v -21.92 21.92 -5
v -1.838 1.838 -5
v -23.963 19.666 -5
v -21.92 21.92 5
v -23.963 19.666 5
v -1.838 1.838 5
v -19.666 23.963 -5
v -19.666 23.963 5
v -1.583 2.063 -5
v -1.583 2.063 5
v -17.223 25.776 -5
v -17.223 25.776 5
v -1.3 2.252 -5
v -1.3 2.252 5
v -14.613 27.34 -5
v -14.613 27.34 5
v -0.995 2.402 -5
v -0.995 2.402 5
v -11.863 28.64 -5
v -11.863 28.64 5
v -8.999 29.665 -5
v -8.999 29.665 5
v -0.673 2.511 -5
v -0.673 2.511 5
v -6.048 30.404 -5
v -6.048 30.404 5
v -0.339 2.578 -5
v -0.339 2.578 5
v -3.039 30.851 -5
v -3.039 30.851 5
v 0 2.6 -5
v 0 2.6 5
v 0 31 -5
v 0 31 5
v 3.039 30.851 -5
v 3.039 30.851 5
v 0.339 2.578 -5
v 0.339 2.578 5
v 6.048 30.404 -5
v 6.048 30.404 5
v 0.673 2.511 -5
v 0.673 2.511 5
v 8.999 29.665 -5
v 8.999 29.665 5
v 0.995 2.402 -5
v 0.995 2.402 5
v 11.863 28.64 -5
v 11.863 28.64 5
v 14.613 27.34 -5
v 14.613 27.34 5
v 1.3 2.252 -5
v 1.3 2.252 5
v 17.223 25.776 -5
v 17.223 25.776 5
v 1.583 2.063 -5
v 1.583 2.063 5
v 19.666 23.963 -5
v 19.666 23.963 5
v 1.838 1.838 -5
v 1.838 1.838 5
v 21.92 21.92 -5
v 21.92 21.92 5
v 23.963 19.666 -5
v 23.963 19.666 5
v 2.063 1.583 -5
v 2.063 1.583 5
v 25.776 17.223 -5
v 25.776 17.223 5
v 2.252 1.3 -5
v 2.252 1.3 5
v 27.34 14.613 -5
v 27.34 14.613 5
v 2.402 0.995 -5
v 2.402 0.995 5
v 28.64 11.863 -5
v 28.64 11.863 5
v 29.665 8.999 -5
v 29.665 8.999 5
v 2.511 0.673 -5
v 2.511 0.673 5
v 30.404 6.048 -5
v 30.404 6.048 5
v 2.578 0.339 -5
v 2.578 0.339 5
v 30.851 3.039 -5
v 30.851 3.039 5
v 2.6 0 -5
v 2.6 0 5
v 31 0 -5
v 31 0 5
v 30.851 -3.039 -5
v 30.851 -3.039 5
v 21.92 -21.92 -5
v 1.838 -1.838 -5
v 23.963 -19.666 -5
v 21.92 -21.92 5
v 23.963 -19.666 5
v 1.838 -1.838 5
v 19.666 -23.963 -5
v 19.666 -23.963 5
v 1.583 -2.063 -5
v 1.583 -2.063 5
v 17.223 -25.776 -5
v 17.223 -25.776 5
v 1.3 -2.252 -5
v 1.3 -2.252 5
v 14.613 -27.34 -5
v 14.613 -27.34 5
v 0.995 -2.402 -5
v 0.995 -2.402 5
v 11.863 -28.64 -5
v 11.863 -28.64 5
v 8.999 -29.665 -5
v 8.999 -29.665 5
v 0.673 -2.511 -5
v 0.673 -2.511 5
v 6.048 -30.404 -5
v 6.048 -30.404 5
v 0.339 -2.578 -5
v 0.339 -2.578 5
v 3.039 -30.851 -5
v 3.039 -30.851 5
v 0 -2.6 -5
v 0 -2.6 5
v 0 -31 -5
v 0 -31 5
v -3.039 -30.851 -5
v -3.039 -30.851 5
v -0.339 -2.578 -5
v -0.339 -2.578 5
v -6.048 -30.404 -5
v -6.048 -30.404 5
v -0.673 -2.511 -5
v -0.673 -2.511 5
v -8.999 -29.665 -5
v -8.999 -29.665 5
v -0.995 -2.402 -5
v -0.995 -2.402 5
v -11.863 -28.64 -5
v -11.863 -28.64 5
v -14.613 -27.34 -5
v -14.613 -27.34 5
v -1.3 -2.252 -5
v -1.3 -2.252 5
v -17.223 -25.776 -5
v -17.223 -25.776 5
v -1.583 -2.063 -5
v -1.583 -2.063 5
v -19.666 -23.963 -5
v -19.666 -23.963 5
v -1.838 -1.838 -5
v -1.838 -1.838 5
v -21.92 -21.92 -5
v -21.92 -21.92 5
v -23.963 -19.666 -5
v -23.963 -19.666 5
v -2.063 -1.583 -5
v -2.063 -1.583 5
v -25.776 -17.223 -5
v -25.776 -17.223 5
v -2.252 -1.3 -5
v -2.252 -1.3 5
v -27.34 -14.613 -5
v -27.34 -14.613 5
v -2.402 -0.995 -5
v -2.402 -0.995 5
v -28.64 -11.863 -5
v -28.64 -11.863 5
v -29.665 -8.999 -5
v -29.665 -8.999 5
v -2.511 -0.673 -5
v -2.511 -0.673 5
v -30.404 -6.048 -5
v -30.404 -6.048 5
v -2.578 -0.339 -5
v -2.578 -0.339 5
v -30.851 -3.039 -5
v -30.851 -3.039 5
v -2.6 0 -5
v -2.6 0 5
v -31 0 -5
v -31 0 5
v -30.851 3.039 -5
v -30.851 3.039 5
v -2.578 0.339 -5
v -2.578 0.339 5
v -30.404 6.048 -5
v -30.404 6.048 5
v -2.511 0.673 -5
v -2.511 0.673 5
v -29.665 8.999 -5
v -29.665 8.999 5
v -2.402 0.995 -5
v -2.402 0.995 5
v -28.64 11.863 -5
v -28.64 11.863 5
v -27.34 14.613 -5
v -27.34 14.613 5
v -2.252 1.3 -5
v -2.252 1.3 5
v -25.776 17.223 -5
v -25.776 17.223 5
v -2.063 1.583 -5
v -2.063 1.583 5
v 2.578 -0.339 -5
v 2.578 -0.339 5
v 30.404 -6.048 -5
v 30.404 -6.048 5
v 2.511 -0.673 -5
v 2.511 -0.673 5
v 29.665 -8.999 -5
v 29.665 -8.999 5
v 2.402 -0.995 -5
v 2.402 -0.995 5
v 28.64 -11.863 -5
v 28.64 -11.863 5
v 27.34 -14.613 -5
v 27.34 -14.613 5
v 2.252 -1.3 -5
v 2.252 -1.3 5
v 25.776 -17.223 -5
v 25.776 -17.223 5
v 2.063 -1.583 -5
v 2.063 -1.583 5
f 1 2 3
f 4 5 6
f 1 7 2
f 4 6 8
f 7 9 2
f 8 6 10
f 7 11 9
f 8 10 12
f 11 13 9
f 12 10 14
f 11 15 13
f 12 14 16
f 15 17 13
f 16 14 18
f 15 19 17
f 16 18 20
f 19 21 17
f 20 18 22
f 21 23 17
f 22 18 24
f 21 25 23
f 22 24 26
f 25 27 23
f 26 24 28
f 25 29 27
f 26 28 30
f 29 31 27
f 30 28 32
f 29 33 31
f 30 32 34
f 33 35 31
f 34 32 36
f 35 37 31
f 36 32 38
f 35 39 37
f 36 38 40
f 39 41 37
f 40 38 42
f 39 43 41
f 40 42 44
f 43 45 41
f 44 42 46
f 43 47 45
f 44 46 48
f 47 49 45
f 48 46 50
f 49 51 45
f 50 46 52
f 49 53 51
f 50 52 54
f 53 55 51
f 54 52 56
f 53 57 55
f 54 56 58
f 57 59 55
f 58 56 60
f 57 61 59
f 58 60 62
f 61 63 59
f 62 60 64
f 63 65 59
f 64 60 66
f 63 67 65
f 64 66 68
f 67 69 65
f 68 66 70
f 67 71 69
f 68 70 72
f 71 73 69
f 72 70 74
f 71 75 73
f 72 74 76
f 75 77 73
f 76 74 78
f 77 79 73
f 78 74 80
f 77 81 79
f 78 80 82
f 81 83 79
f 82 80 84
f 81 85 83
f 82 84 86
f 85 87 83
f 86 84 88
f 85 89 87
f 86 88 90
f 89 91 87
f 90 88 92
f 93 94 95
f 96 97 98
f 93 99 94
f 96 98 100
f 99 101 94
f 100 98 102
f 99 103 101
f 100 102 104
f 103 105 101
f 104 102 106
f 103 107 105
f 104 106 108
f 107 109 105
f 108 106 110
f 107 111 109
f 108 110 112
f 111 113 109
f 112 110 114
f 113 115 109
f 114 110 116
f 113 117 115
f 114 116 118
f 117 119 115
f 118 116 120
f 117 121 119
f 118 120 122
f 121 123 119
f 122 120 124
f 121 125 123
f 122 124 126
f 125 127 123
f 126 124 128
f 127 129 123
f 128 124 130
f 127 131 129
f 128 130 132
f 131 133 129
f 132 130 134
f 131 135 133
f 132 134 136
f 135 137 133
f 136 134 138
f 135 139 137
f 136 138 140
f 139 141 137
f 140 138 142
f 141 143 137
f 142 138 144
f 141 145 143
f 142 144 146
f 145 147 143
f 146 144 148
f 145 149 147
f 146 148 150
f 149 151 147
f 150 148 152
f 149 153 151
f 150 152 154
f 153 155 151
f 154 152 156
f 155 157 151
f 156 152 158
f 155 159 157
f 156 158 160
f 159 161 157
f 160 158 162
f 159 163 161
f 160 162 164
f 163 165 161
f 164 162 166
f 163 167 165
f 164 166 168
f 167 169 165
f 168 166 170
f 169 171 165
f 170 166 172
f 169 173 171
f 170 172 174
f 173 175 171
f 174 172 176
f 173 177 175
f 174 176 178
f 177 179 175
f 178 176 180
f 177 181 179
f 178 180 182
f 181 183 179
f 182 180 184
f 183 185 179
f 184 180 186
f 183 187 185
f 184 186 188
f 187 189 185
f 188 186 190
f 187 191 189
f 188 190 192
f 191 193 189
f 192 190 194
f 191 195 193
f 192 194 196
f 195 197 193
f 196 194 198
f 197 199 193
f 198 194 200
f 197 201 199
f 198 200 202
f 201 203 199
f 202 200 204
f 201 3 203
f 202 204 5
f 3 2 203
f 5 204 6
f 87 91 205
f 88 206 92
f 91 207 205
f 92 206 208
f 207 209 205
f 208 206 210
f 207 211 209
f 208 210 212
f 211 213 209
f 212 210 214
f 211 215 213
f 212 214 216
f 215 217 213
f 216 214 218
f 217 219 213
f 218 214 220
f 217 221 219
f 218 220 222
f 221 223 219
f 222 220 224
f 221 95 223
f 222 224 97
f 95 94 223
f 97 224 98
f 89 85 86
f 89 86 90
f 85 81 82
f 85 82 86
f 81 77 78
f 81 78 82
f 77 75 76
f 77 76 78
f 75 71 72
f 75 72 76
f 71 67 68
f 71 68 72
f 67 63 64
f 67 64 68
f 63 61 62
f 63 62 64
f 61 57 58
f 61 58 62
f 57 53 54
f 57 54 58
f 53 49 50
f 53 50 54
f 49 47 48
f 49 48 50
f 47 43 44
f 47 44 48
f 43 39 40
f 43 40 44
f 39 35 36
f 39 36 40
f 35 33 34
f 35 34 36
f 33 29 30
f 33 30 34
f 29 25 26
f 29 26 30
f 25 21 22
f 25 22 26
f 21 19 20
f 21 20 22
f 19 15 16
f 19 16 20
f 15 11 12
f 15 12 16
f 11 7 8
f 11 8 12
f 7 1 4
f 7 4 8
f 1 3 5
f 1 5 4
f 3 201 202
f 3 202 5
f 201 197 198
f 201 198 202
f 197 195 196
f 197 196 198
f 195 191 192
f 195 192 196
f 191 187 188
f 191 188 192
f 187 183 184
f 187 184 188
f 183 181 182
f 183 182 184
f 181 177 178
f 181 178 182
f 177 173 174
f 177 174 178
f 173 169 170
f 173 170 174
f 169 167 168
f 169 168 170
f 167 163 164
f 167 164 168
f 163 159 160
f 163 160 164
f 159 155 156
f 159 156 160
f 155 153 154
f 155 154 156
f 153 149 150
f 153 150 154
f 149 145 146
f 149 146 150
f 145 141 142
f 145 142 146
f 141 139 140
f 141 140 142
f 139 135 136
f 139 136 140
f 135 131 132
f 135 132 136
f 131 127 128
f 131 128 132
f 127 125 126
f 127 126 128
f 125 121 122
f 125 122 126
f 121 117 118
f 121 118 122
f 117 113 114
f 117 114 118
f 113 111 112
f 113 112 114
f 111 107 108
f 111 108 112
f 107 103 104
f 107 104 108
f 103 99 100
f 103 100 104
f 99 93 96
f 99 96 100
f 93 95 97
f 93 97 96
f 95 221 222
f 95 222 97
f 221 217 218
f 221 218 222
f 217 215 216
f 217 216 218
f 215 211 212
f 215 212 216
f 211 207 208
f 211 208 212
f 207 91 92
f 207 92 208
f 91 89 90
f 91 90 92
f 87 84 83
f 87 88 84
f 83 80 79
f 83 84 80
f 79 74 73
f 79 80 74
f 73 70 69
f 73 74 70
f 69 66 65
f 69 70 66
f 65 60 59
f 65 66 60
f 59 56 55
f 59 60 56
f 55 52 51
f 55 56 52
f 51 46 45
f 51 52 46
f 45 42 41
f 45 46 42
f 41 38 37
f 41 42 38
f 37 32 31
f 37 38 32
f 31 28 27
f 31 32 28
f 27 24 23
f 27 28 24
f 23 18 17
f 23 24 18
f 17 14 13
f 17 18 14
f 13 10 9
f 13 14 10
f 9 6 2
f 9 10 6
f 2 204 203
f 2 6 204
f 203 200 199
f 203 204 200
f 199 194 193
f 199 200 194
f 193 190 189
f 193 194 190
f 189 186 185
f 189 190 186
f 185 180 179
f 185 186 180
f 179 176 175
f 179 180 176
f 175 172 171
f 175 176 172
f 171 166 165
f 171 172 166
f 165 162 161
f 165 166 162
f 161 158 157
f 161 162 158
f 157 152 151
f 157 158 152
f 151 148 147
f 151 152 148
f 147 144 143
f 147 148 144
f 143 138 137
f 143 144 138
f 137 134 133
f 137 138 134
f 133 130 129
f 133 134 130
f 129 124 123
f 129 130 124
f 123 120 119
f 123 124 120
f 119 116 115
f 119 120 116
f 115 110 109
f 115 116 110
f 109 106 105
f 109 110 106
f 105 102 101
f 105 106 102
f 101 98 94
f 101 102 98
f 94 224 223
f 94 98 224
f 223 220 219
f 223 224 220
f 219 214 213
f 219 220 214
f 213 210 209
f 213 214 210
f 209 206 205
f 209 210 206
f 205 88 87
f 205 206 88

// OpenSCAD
polyhedron(points=[[-21.92031, 21.92031, -5.0], [-23.963324, 19.666192, -5.0], [-1.838478, 1.838478, -5.0], [-21.92031, 21.92031, 5.0], [-23.963324, 19.666192, 5.0], [-1.838478, 1.838478, 5.0], [-19.666192, 23.963324, -5.0], [-19.666192, 23.963324, 5.0], [-1.58278, 2.062719, -5.0], [-1.58278, 2.062719, 5.0], [-17.222677, 25.775558, -5.0], [-17.222677, 25.775558, 5.0], [-1.3, 2.251666, -5.0], [-1.3, 2.251666, 5.0], [-14.613299, 27.339559, -5.0], [-14.613299, 27.339559, 5.0], [-0.994977, 2.402087, -5.0], [-0.994977, 2.402087, 5.0], [-11.863186, 28.640266, -5.0], [-11.863186, 28.640266, 5.0], [-8.998825, 29.66515, -5.0], [-8.998825, 29.66515, 5.0], [-0.67293, 2.511407, -5.0], [-0.67293, 2.511407, 5.0], [-6.0478, 30.404344, -5.0], [-6.0478, 30.404344, 5.0], [-0.339368, 2.577757, -5.0], [-0.339368, 2.577757, 5.0], [-3.038531, 30.850727, -5.0], [-3.038531, 30.850727, 5.0], [0.0, 2.6, -5.0], [0.0, 2.6, 5.0], [0.0, 31.0, -5.0], [0.0, 31.0, 5.0], [3.038531, 30.850727, -5.0], [3.038531, 30.850727, 5.0], [0.339368, 2.577757, -5.0], [0.339368, 2.577757, 5.0], [6.0478, 30.404344, -5.0], [6.0478, 30.404344, 5.0], [0.67293, 2.511407, -5.0], [0.67293, 2.511407, 5.0], [8.998825, 29.66515, -5.0], [8.998825, 29.66515, 5.0], [0.994977, 2.402087, -5.0], [0.994977, 2.402087, 5.0], [11.863186, 28.640266, -5.0], [11.863186, 28.640266, 5.0], [14.613299, 27.339559, -5.0], [14.613299, 27.339559, 5.0], [1.3, 2.251666, -5.0], [1.3, 2.251666, 5.0], [17.222677, 25.775558, -5.0], [17.222677, 25.775558, 5.0], [1.58278, 2.062719, -5.0], [1.58278, 2.062719, 5.0], [19.666192, 23.963324, -5.0], [19.666192, 23.963324, 5.0], [1.838478, 1.838478, -5.0], [1.838478, 1.838478, 5.0], [21.92031, 21.92031, -5.0], [21.92031, 21.92031, 5.0], [23.963324, 19.666192, -5.0], [23.963324, 19.666192, 5.0], [2.062719, 1.58278, -5.0], [2.062719, 1.58278, 5.0], [25.775558, 17.222677, -5.0], [25.775558, 17.222677, 5.0], [2.251666, 1.3, -5.0], [2.251666, 1.3, 5.0], [27.339559, 14.613299, -5.0], [27.339559, 14.613299, 5.0], [2.402087, 0.994977, -5.0], [2.402087, 0.994977, 5.0], [28.640266, 11.863186, -5.0], [28.640266, 11.863186, 5.0], [29.66515, 8.998825, -5.0], [29.66515, 8.998825, 5.0], [2.511407, 0.67293, -5.0], [2.511407, 0.67293, 5.0], [30.404344, 6.0478, -5.0], [30.404344, 6.0478, 5.0], [2.577757, 0.339368, -5.0], [2.577757, 0.339368, 5.0], [30.850727, 3.038531, -5.0], [30.850727, 3.038531, 5.0], [2.6, 0.0, -5.0], [2.6, 0.0, 5.0], [31.0, 0.0, -5.0], [31.0, 0.0, 5.0], [30.850727, -3.038531, -5.0], [30.850727, -3.038531, 5.0], [21.92031, -21.92031, -5.0], [23.963324, -19.666192, -5.0], [1.838478, -1.838478, -5.0], [21.92031, -21.92031, 5.0], [23.963324, -19.666192, 5.0], [1.838478, -1.838478, 5.0], [19.666192, -23.963324, -5.0], [19.666192, -23.963324, 5.0], [1.58278, -2.062719, -5.0], [1.58278, -2.062719, 5.0], [17.222677, -25.775558, -5.0], [17.222677, -25.775558, 5.0], [1.3, -2.251666, -5.0], [1.3, -2.251666, 5.0], [14.613299, -27.339559, -5.0], [14.613299, -27.339559, 5.0], [0.994977, -2.402087, -5.0], [0.994977, -2.402087, 5.0], [11.863186, -28.640266, -5.0], [11.863186, -28.640266, 5.0], [8.998825, -29.66515, -5.0], [8.998825, -29.66515, 5.0], [0.67293, -2.511407, -5.0], [0.67293, -2.511407, 5.0], [6.0478, -30.404344, -5.0], [6.0478, -30.404344, 5.0], [0.339368, -2.577757, -5.0], [0.339368, -2.577757, 5.0], [3.038531, -30.850727, -5.0], [3.038531, -30.850727, 5.0], [-0.0, -2.6, -5.0], [-0.0, -2.6, 5.0], [-0.0, -31.0, -5.0], [-0.0, -31.0, 5.0], [-3.038531, -30.850727, -5.0], [-3.038531, -30.850727, 5.0], [-0.339368, -2.577757, -5.0], [-0.339368, -2.577757, 5.0], [-6.0478, -30.404344, -5.0], [-6.0478, -30.404344, 5.0], [-0.67293, -2.511407, -5.0], [-0.67293, -2.511407, 5.0], [-8.998825, -29.66515, -5.0], [-8.998825, -29.66515, 5.0], [-0.994977, -2.402087, -5.0], [-0.994977, -2.402087, 5.0], [-11.863186, -28.640266, -5.0], [-11.863186, -28.640266, 5.0], [-14.613299, -27.339559, -5.0], [-14.613299, -27.339559, 5.0], [-1.3, -2.251666, -5.0], [-1.3, -2.251666, 5.0], [-17.222677, -25.775558, -5.0], [-17.222677, -25.775558, 5.0], [-1.58278, -2.062719, -5.0], [-1.58278, -2.062719, 5.0], [-19.666192, -23.963324, -5.0], [-19.666192, -23.963324, 5.0], [-1.838478, -1.838478, -5.0], [-1.838478, -1.838478, 5.0], [-21.92031, -21.92031, -5.0], [-21.92031, -21.92031, 5.0], [-23.963324, -19.666192, -5.0], [-23.963324, -19.666192, 5.0], [-2.062719, -1.58278, -5.0], [-2.062719, -1.58278, 5.0], [-25.775558, -17.222677, -5.0], [-25.775558, -17.222677, 5.0], [-2.251666, -1.3, -5.0], [-2.251666, -1.3, 5.0], [-27.339559, -14.613299, -5.0], [-27.339559, -14.613299, 5.0], [-2.402087, -0.994977, -5.0], [-2.402087, -0.994977, 5.0], [-28.640266, -11.863186, -5.0], [-28.640266, -11.863186, 5.0], [-29.66515, -8.998825, -5.0], [-29.66515, -8.998825, 5.0], [-2.511407, -0.67293, -5.0], [-2.511407, -0.67293, 5.0], [-30.404344, -6.0478, -5.0], [-30.404344, -6.0478, 5.0], [-2.577757, -0.339368, -5.0], [-2.577757, -0.339368, 5.0], [-30.850727, -3.038531, -5.0], [-30.850727, -3.038531, 5.0], [-2.6, 0.0, -5.0], [-2.6, 0.0, 5.0], [-31.0, 0.0, -5.0], [-31.0, 0.0, 5.0], [-30.850727, 3.038531, -5.0], [-30.850727, 3.038531, 5.0], [-2.577757, 0.339368, -5.0], [-2.577757, 0.339368, 5.0], [-30.404344, 6.0478, -5.0], [-30.404344, 6.0478, 5.0], [-2.511407, 0.67293, -5.0], [-2.511407, 0.67293, 5.0], [-29.66515, 8.998825, -5.0], [-29.66515, 8.998825, 5.0], [-2.402087, 0.994977, -5.0], [-2.402087, 0.994977, 5.0], [-28.640266, 11.863186, -5.0], [-28.640266, 11.863186, 5.0], [-27.339559, 14.613299, -5.0], [-27.339559, 14.613299, 5.0], [-2.251666, 1.3, -5.0], [-2.251666, 1.3, 5.0], [-25.775558, 17.222677, -5.0], [-25.775558, 17.222677, 5.0], [-2.062719, 1.58278, -5.0], [-2.062719, 1.58278, 5.0], [2.577757, -0.339368, -5.0], [2.577757, -0.339368, 5.0], [30.404344, -6.0478, -5.0], [30.404344, -6.0478, 5.0], [2.511407, -0.67293, -5.0], [2.511407, -0.67293, 5.0], [29.66515, -8.998825, -5.0], [29.66515, -8.998825, 5.0], [2.402087, -0.994977, -5.0], [2.402087, -0.994977, 5.0], [28.640266, -11.863186, -5.0], [28.640266, -11.863186, 5.0], [27.339559, -14.613299, -5.0], [27.339559, -14.613299, 5.0], [2.251666, -1.3, -5.0], [2.251666, -1.3, 5.0], [25.775558, -17.222677, -5.0], [25.775558, -17.222677, 5.0], [2.062719, -1.58278, -5.0], [2.062719, -1.58278, 5.0]], faces=[[0, 2, 1], [3, 4, 5], [0, 6, 2], [3, 5, 7], [6, 8, 2], [7, 5, 9], [6, 10, 8], [7, 9, 11], [10, 12, 8], [11, 9, 13], [10, 14, 12], [11, 13, 15], [14, 16, 12], [15, 13, 17], [14, 18, 16], [15, 17, 19], [18, 20, 16], [19, 17, 21], [20, 22, 16], [21, 17, 23], [20, 24, 22], [21, 23, 25], [24, 26, 22], [25, 23, 27], [24, 28, 26], [25, 27, 29], [28, 30, 26], [29, 27, 31], [28, 32, 30], [29, 31, 33], [32, 34, 30], [33, 31, 35], [34, 36, 30], [35, 31, 37], [34, 38, 36], [35, 37, 39], [38, 40, 36], [39, 37, 41], [38, 42, 40], [39, 41, 43], [42, 44, 40], [43, 41, 45], [42, 46, 44], [43, 45, 47], [46, 48, 44], [47, 45, 49], [48, 50, 44], [49, 45, 51], [48, 52, 50], [49, 51, 53], [52, 54, 50], [53, 51, 55], [52, 56, 54], [53, 55, 57], [56, 58, 54], [57, 55, 59], [56, 60, 58], [57, 59, 61], [60, 62, 58], [61, 59, 63], [62, 64, 58], [63, 59, 65], [62, 66, 64], [63, 65, 67], [66, 68, 64], [67, 65, 69], [66, 70, 68], [67, 69, 71], [70, 72, 68], [71, 69, 73], [70, 74, 72], [71, 73, 75], [74, 76, 72], [75, 73, 77], [76, 78, 72], [77, 73, 79], [76, 80, 78], [77, 79, 81], [80, 82, 78], [81, 79, 83], [80, 84, 82], [81, 83, 85], [84, 86, 82], [85, 83, 87], [84, 88, 86], [85, 87, 89], [88, 90, 86], [89, 87, 91], [92, 94, 93], [95, 96, 97], [92, 98, 94], [95, 97, 99], [98, 100, 94], [99, 97, 101], [98, 102, 100], [99, 101, 103], [102, 104, 100], [103, 101, 105], [102, 106, 104], [103, 105, 107], [106, 108, 104], [107, 105, 109], [106, 110, 108], [107, 109, 111], [110, 112, 108], [111, 109, 113], [112, 114, 108], [113, 109, 115], [112, 116, 114], [113, 115, 117], [116, 118, 114], [117, 115, 119], [116, 120, 118], [117, 119, 121], [120, 122, 118], [121, 119, 123], [120, 124, 122], [121, 123, 125], [124, 126, 122], [125, 123, 127], [126, 128, 122], [127, 123, 129], [126, 130, 128], [127, 129, 131], [130, 132, 128], [131, 129, 133], [130, 134, 132], [131, 133, 135], [134, 136, 132], [135, 133, 137], [134, 138, 136], [135, 137, 139], [138, 140, 136], [139, 137, 141], [140, 142, 136], [141, 137, 143], [140, 144, 142], [141, 143, 145], [144, 146, 142], [145, 143, 147], [144, 148, 146], [145, 147, 149], [148, 150, 146], [149, 147, 151], [148, 152, 150], [149, 151, 153], [152, 154, 150], [153, 151, 155], [154, 156, 150], [155, 151, 157], [154, 158, 156], [155, 157, 159], [158, 160, 156], [159, 157, 161], [158, 162, 160], [159, 161, 163], [162, 164, 160], [163, 161, 165], [162, 166, 164], [163, 165, 167], [166, 168, 164], [167, 165, 169], [168, 170, 164], [169, 165, 171], [168, 172, 170], [169, 171, 173], [172, 174, 170], [173, 171, 175], [172, 176, 174], [173, 175, 177], [176, 178, 174], [177, 175, 179], [176, 180, 178], [177, 179, 181], [180, 182, 178], [181, 179, 183], [182, 184, 178], [183, 179, 185], [182, 186, 184], [183, 185, 187], [186, 188, 184], [187, 185, 189], [186, 190, 188], [187, 189, 191], [190, 192, 188], [191, 189, 193], [190, 194, 192], [191, 193, 195], [194, 196, 192], [195, 193, 197], [196, 198, 192], [197, 193, 199], [196, 200, 198], [197, 199, 201], [200, 202, 198], [201, 199, 203], [200, 1, 202], [201, 203, 4], [1, 2, 202], [4, 203, 5], [86, 90, 204], [87, 205, 91], [90, 206, 204], [91, 205, 207], [206, 208, 204], [207, 205, 209], [206, 210, 208], [207, 209, 211], [210, 212, 208], [211, 209, 213], [210, 214, 212], [211, 213, 215], [214, 216, 212], [215, 213, 217], [216, 218, 212], [217, 213, 219], [216, 220, 218], [217, 219, 221], [220, 222, 218], [221, 219, 223], [220, 93, 222], [221, 223, 96], [93, 94, 222], [96, 223, 97], [88, 84, 85], [88, 85, 89], [84, 80, 81], [84, 81, 85], [80, 76, 77], [80, 77, 81], [76, 74, 75], [76, 75, 77], [74, 70, 71], [74, 71, 75], [70, 66, 67], [70, 67, 71], [66, 62, 63], [66, 63, 67], [62, 60, 61], [62, 61, 63], [60, 56, 57], [60, 57, 61], [56, 52, 53], [56, 53, 57], [52, 48, 49], [52, 49, 53], [48, 46, 47], [48, 47, 49], [46, 42, 43], [46, 43, 47], [42, 38, 39], [42, 39, 43], [38, 34, 35], [38, 35, 39], [34, 32, 33], [34, 33, 35], [32, 28, 29], [32, 29, 33], [28, 24, 25], [28, 25, 29], [24, 20, 21], [24, 21, 25], [20, 18, 19], [20, 19, 21], [18, 14, 15], [18, 15, 19], [14, 10, 11], [14, 11, 15], [10, 6, 7], [10, 7, 11], [6, 0, 3], [6, 3, 7], [0, 1, 4], [0, 4, 3], [1, 200, 201], [1, 201, 4], [200, 196, 197], [200, 197, 201], [196, 194, 195], [196, 195, 197], [194, 190, 191], [194, 191, 195], [190, 186, 187], [190, 187, 191], [186, 182, 183], [186, 183, 187], [182, 180, 181], [182, 181, 183], [180, 176, 177], [180, 177, 181], [176, 172, 173], [176, 173, 177], [172, 168, 169], [172, 169, 173], [168, 166, 167], [168, 167, 169], [166, 162, 163], [166, 163, 167], [162, 158, 159], [162, 159, 163], [158, 154, 155], [158, 155, 159], [154, 152, 153], [154, 153, 155], [152, 148, 149], [152, 149, 153], [148, 144, 145], [148, 145, 149], [144, 140, 141], [144, 141, 145], [140, 138, 139], [140, 139, 141], [138, 134, 135], [138, 135, 139], [134, 130, 131], [134, 131, 135], [130, 126, 127], [130, 127, 131], [126, 124, 125], [126, 125, 127], [124, 120, 121], [124, 121, 125], [120, 116, 117], [120, 117, 121], [116, 112, 113], [116, 113, 117], [112, 110, 111], [112, 111, 113], [110, 106, 107], [110, 107, 111], [106, 102, 103], [106, 103, 107], [102, 98, 99], [102, 99, 103], [98, 92, 95], [98, 95, 99], [92, 93, 96], [92, 96, 95], [93, 220, 221], [93, 221, 96], [220, 216, 217], [220, 217, 221], [216, 214, 215], [216, 215, 217], [214, 210, 211], [214, 211, 215], [210, 206, 207], [210, 207, 211], [206, 90, 91], [206, 91, 207], [90, 88, 89], [90, 89, 91], [86, 83, 82], [86, 87, 83], [82, 79, 78], [82, 83, 79], [78, 73, 72], [78, 79, 73], [72, 69, 68], [72, 73, 69], [68, 65, 64], [68, 69, 65], [64, 59, 58], [64, 65, 59], [58, 55, 54], [58, 59, 55], [54, 51, 50], [54, 55, 51], [50, 45, 44], [50, 51, 45], [44, 41, 40], [44, 45, 41], [40, 37, 36], [40, 41, 37], [36, 31, 30], [36, 37, 31], [30, 27, 26], [30, 31, 27], [26, 23, 22], [26, 27, 23], [22, 17, 16], [22, 23, 17], [16, 13, 12], [16, 17, 13], [12, 9, 8], [12, 13, 9], [8, 5, 2], [8, 9, 5], [2, 203, 202], [2, 5, 203], [202, 199, 198], [202, 203, 199], [198, 193, 192], [198, 199, 193], [192, 189, 188], [192, 193, 189], [188, 185, 184], [188, 189, 185], [184, 179, 178], [184, 185, 179], [178, 175, 174], [178, 179, 175], [174, 171, 170], [174, 175, 171], [170, 165, 164], [170, 171, 165], [164, 161, 160], [164, 165, 161], [160, 157, 156], [160, 161, 157], [156, 151, 150], [156, 157, 151], [150, 147, 146], [150, 151, 147], [146, 143, 142], [146, 147, 143], [142, 137, 136], [142, 143, 137], [136, 133, 132], [136, 137, 133], [132, 129, 128], [132, 133, 129], [128, 123, 122], [128, 129, 123], [122, 119, 118], [122, 123, 119], [118, 115, 114], [118, 119, 115], [114, 109, 108], [114, 115, 109], [108, 105, 104], [108, 109, 105], [104, 101, 100], [104, 105, 101], [100, 97, 94], [100, 101, 97], [94, 223, 222], [94, 97, 223], [222, 219, 218], [222, 223, 219], [218, 213, 212], [218, 219, 213], [212, 209, 208], [212, 213, 209], [208, 205, 204], [208, 209, 205], [204, 87, 86], [204, 205, 87]], convexity=20);
